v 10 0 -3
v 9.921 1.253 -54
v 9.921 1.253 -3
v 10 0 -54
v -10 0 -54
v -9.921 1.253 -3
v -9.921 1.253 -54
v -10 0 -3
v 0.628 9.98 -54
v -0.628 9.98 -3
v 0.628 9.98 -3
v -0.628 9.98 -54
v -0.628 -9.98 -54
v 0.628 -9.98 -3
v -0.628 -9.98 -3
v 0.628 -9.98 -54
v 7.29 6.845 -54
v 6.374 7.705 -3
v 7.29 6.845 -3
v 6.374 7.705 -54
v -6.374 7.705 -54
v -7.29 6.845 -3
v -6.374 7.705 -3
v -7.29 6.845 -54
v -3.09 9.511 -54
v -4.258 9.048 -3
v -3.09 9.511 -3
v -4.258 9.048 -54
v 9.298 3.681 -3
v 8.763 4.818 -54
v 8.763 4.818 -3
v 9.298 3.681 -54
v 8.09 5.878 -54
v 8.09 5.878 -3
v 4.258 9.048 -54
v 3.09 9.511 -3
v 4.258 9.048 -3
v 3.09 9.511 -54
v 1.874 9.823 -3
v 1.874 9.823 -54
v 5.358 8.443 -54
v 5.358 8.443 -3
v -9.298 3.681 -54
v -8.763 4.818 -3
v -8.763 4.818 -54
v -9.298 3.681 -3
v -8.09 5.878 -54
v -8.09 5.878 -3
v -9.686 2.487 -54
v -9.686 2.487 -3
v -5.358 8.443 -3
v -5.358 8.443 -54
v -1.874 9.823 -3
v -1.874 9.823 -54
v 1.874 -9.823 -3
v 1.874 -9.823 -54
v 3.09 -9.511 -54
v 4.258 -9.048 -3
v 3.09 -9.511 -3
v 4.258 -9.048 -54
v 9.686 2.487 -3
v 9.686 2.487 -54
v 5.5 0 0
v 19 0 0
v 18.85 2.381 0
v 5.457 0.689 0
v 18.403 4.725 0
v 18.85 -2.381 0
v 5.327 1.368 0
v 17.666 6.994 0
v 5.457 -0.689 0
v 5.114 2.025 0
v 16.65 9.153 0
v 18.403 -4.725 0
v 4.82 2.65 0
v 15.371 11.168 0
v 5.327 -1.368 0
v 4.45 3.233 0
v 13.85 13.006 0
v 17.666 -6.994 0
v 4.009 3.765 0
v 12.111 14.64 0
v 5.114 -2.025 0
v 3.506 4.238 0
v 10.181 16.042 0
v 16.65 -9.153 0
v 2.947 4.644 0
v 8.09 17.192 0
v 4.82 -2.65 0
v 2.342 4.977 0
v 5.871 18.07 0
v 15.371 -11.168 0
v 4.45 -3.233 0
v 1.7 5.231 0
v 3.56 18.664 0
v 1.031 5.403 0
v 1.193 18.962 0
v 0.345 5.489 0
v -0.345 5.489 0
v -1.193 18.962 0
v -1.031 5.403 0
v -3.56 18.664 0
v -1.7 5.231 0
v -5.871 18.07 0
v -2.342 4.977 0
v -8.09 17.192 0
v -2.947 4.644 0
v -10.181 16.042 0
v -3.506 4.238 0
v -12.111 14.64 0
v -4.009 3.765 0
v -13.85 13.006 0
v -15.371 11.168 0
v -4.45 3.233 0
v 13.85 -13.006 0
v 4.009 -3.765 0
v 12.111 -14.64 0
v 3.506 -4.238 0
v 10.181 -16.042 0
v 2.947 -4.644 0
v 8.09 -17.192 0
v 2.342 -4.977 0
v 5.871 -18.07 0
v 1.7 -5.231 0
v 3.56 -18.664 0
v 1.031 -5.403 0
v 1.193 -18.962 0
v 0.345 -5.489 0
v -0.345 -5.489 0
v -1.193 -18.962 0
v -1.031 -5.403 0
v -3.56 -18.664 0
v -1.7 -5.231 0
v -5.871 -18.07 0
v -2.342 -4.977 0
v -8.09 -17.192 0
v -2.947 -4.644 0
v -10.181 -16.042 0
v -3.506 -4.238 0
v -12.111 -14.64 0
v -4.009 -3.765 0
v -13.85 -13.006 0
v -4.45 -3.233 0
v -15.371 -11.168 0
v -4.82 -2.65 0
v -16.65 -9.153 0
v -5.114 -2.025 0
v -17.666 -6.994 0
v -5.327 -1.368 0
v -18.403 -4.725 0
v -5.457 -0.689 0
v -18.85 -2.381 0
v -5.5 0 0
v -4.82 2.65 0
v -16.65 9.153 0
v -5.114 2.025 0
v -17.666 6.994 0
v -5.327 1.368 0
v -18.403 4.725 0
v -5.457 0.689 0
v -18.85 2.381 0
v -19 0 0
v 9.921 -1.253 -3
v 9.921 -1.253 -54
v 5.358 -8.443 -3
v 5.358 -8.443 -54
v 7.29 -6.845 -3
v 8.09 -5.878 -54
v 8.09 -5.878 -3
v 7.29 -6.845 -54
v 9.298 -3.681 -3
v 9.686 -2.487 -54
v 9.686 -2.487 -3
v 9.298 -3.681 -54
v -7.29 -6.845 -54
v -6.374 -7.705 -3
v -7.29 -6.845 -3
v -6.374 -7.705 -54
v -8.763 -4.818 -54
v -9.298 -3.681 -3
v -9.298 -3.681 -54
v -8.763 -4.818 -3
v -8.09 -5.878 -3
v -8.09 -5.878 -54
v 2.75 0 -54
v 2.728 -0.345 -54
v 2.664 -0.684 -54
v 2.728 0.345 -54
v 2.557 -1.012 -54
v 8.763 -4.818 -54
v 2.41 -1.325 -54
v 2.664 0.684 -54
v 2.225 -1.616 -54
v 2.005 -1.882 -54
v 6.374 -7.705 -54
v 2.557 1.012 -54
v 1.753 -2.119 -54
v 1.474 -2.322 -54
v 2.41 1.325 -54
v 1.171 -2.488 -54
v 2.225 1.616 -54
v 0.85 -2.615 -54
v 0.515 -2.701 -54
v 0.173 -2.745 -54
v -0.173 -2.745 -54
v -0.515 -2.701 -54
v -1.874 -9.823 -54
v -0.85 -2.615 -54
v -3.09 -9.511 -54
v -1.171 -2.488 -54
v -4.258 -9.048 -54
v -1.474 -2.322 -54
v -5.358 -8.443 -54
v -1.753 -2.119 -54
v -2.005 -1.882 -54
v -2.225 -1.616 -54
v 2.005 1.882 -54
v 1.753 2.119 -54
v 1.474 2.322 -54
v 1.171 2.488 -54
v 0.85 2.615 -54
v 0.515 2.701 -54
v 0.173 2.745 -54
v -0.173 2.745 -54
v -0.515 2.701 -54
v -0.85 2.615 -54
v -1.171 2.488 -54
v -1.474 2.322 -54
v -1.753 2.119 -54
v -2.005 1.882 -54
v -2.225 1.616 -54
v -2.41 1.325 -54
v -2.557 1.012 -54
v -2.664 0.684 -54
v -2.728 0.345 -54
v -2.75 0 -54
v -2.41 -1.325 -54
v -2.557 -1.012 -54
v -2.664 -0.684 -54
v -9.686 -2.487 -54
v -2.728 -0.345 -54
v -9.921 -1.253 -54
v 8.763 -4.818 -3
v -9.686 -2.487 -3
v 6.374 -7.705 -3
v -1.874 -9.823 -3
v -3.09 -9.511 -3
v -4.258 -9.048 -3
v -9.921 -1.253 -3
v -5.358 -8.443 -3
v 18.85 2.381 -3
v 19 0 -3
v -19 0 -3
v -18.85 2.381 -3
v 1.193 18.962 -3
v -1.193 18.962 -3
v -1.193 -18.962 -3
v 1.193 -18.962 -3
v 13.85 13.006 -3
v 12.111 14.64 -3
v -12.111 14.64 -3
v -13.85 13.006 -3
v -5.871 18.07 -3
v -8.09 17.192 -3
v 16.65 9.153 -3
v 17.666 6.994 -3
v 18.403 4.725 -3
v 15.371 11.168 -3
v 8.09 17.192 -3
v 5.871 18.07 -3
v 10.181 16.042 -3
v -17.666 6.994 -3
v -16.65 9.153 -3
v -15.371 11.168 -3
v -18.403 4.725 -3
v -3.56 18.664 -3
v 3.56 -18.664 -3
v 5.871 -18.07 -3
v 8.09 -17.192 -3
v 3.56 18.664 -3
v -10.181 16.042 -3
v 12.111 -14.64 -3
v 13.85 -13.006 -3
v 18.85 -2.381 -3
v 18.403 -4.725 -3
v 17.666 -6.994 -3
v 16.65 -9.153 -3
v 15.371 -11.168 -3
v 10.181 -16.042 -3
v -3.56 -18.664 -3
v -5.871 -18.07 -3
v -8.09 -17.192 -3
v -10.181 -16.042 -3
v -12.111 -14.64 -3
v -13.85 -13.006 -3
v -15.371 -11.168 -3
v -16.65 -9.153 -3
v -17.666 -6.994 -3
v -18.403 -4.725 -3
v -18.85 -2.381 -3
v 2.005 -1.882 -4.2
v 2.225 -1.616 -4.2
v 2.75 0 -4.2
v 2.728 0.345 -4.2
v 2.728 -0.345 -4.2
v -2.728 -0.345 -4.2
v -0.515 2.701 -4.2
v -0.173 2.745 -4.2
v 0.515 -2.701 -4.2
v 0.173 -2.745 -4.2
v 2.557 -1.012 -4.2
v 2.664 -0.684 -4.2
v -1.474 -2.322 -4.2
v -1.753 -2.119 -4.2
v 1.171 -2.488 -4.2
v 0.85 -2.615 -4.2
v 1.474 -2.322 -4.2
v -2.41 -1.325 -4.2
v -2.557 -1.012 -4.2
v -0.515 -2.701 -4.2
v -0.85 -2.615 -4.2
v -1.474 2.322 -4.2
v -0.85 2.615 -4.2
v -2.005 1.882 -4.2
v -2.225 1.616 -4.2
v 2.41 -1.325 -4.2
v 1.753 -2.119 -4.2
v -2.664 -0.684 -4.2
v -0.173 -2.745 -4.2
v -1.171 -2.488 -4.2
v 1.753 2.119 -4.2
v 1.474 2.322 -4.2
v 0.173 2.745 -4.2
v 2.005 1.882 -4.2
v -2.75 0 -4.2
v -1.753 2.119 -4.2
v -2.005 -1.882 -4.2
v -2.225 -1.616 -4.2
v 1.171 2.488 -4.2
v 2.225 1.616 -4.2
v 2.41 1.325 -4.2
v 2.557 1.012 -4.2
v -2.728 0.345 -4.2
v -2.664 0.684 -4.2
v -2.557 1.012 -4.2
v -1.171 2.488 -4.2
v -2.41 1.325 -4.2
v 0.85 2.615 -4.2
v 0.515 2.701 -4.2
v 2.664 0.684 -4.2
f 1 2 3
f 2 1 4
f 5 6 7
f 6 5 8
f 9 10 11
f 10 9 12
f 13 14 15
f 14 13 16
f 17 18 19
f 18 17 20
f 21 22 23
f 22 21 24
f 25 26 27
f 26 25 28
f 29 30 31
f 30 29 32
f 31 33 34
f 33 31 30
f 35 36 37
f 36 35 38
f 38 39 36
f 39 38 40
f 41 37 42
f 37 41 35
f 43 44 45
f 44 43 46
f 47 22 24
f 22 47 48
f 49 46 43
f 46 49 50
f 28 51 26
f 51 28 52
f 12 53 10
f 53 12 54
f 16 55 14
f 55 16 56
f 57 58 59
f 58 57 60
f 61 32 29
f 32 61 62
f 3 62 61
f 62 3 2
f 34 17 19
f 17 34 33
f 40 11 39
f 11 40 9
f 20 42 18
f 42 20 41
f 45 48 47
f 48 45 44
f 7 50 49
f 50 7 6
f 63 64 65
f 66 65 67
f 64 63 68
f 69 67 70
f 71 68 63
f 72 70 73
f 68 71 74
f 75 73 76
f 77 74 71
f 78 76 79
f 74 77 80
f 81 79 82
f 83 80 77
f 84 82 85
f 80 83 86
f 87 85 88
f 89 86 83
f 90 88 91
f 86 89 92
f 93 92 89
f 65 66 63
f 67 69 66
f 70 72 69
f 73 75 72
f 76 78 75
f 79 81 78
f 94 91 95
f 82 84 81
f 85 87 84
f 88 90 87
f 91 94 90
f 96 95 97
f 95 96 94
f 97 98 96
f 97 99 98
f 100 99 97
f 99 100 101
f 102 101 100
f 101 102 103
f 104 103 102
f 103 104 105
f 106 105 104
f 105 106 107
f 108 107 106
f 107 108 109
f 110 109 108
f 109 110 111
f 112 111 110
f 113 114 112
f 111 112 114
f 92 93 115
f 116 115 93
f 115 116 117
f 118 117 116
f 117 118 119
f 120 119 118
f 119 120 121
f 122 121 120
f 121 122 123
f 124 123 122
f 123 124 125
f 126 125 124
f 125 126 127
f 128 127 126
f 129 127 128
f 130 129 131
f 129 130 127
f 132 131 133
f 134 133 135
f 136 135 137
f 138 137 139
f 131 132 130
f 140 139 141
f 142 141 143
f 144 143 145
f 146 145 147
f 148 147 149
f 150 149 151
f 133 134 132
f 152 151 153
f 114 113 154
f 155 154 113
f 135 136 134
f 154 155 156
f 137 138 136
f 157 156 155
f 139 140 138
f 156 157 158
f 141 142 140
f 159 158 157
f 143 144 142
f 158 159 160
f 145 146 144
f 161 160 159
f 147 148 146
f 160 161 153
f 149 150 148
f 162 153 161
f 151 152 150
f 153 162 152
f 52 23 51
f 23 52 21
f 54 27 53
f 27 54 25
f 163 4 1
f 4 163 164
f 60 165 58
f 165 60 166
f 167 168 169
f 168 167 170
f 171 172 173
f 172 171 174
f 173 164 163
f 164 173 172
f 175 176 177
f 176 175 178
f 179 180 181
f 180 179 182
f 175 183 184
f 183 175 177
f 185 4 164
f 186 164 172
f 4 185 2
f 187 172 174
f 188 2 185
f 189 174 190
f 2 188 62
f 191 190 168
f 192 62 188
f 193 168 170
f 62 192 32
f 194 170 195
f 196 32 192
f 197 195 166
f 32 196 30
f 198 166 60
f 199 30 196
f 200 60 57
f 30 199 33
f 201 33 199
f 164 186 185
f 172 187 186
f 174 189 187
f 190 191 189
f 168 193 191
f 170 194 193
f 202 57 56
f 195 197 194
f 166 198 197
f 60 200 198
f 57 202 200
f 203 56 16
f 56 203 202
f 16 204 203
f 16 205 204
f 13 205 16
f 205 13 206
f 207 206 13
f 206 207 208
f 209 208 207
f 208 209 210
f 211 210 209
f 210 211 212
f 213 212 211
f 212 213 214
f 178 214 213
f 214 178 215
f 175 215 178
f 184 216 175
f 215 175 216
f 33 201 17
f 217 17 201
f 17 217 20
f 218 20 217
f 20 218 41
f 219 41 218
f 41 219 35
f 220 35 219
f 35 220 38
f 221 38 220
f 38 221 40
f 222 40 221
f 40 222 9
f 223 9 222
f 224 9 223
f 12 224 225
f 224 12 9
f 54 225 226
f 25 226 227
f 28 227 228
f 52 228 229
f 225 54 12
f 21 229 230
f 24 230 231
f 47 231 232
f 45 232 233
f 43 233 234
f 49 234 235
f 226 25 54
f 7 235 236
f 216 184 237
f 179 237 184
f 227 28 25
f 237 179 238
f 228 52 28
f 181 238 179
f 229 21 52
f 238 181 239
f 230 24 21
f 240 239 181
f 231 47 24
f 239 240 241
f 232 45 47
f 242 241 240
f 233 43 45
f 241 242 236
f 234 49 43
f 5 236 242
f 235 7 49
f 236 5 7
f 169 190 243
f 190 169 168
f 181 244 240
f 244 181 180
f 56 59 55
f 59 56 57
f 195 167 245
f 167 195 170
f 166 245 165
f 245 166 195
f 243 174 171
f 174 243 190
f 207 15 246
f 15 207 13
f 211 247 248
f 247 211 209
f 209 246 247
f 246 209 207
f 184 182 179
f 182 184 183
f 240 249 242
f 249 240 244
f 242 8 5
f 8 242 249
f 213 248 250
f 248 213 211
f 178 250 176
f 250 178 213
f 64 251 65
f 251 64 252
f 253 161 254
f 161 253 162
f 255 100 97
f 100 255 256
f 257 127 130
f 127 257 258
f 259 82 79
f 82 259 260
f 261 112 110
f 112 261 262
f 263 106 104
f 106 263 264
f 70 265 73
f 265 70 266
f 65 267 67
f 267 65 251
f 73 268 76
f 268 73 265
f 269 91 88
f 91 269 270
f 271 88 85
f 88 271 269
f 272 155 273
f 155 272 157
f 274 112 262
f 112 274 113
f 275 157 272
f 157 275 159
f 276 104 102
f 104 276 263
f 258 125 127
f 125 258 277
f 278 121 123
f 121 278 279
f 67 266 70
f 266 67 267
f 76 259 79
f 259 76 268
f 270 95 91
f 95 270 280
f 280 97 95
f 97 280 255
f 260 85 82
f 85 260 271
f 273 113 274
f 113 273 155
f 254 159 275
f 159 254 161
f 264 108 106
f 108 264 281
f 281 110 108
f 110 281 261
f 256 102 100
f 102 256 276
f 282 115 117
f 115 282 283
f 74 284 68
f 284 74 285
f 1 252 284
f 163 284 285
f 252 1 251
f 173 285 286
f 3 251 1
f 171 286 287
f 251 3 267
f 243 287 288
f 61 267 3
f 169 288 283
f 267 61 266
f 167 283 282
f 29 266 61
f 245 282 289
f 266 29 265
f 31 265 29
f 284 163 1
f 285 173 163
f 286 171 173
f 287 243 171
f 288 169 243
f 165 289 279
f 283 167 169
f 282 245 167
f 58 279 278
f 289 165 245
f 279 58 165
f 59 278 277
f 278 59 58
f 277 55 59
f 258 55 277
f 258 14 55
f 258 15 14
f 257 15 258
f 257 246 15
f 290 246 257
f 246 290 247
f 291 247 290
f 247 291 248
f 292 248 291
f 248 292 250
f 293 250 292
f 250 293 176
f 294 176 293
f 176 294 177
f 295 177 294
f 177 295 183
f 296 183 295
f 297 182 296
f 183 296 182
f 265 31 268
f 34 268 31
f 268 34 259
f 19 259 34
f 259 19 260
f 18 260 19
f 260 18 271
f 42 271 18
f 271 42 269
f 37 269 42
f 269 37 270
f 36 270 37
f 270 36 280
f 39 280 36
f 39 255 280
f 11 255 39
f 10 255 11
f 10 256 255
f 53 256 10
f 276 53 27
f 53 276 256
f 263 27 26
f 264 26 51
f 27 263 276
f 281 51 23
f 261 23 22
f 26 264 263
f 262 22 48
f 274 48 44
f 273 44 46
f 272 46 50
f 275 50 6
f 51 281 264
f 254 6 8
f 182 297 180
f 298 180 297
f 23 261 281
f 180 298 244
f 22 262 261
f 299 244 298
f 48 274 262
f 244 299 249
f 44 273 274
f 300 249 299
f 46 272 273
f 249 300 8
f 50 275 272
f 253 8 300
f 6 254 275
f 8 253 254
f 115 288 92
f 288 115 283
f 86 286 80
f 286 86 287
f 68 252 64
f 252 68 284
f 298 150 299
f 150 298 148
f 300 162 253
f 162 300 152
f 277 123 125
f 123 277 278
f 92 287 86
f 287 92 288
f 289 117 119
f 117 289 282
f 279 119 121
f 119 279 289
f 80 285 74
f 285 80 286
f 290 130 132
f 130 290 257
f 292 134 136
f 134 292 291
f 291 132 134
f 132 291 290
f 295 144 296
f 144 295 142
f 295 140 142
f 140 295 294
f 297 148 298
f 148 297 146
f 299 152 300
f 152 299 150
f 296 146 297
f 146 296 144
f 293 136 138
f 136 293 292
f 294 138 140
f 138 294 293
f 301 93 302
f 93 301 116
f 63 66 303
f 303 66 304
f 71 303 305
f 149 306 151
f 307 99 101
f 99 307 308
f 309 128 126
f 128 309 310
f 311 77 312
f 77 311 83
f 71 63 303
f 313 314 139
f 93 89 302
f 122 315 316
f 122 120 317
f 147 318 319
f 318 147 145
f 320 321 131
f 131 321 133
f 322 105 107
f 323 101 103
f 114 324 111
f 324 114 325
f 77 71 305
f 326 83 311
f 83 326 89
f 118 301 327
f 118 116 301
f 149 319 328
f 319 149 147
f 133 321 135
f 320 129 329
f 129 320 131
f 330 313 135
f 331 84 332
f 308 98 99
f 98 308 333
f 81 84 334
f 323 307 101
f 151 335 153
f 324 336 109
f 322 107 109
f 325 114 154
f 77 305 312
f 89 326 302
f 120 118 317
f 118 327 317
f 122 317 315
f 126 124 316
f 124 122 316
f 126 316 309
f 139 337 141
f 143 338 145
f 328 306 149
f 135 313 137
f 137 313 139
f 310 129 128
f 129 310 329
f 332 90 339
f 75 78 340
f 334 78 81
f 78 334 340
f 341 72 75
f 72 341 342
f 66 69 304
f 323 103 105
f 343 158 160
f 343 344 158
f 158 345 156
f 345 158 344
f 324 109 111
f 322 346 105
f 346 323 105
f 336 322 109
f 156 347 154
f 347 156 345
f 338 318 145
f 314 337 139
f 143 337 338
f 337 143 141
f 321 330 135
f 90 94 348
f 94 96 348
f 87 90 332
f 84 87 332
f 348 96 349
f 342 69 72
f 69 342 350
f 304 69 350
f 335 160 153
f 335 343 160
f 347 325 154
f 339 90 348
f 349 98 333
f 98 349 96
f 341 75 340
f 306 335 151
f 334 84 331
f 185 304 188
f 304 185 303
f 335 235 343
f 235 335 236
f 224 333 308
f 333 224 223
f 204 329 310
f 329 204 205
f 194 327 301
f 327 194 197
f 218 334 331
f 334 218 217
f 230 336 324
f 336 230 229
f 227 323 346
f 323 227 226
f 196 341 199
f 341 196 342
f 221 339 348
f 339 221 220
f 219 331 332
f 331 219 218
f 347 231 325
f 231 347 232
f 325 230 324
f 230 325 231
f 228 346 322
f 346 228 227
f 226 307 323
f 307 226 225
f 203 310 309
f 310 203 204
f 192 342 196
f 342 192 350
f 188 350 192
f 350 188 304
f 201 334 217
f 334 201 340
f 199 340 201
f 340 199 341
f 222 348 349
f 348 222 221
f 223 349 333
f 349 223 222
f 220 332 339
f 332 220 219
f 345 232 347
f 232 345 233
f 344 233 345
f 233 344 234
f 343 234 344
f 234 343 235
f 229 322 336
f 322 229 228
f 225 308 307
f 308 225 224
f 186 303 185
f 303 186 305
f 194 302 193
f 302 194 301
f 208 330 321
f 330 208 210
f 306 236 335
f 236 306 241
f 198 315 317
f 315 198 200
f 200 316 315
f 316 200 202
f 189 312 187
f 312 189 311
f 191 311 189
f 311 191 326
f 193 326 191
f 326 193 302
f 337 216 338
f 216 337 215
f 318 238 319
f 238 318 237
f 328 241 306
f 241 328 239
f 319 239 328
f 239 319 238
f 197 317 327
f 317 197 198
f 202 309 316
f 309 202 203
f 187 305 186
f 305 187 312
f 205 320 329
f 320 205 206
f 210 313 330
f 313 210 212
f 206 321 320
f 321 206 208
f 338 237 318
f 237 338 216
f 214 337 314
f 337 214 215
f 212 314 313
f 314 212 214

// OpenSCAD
$fn = 50;


difference() {
	union() {
		translate(v = [0, 0, -54.0000000000]) {
			cylinder(h = 54, r = 10.0000000000);
		}
		translate(v = [0, 0, -3.0000000000]) {
			cylinder(h = 3, r = 19.0000000000);
		}
	}
	union() {
		translate(v = [0, 0, 0]) {
			rotate(a = [0, 0, 0]) {
				difference() {
					union() {
						#translate(v = [0, 0, -54.0000000000]) {
							cylinder(h = 54, r = 2.2500000000);
						}
						#translate(v = [0, 0, -4.2000000000]) {
							cylinder(h = 4.2000000000, r1 = 2.7500000000, r2 = 5.5000000000);
						}
						#translate(v = [0, 0, -54.0000000000]) {
							cylinder(h = 54, r = 2.7500000000);
						}
						#translate(v = [0, 0, -54.0000000000]) {
							cylinder(h = 54, r = 2.2500000000);
						}
					}
					union();
				}
			}
		}
	}
}
